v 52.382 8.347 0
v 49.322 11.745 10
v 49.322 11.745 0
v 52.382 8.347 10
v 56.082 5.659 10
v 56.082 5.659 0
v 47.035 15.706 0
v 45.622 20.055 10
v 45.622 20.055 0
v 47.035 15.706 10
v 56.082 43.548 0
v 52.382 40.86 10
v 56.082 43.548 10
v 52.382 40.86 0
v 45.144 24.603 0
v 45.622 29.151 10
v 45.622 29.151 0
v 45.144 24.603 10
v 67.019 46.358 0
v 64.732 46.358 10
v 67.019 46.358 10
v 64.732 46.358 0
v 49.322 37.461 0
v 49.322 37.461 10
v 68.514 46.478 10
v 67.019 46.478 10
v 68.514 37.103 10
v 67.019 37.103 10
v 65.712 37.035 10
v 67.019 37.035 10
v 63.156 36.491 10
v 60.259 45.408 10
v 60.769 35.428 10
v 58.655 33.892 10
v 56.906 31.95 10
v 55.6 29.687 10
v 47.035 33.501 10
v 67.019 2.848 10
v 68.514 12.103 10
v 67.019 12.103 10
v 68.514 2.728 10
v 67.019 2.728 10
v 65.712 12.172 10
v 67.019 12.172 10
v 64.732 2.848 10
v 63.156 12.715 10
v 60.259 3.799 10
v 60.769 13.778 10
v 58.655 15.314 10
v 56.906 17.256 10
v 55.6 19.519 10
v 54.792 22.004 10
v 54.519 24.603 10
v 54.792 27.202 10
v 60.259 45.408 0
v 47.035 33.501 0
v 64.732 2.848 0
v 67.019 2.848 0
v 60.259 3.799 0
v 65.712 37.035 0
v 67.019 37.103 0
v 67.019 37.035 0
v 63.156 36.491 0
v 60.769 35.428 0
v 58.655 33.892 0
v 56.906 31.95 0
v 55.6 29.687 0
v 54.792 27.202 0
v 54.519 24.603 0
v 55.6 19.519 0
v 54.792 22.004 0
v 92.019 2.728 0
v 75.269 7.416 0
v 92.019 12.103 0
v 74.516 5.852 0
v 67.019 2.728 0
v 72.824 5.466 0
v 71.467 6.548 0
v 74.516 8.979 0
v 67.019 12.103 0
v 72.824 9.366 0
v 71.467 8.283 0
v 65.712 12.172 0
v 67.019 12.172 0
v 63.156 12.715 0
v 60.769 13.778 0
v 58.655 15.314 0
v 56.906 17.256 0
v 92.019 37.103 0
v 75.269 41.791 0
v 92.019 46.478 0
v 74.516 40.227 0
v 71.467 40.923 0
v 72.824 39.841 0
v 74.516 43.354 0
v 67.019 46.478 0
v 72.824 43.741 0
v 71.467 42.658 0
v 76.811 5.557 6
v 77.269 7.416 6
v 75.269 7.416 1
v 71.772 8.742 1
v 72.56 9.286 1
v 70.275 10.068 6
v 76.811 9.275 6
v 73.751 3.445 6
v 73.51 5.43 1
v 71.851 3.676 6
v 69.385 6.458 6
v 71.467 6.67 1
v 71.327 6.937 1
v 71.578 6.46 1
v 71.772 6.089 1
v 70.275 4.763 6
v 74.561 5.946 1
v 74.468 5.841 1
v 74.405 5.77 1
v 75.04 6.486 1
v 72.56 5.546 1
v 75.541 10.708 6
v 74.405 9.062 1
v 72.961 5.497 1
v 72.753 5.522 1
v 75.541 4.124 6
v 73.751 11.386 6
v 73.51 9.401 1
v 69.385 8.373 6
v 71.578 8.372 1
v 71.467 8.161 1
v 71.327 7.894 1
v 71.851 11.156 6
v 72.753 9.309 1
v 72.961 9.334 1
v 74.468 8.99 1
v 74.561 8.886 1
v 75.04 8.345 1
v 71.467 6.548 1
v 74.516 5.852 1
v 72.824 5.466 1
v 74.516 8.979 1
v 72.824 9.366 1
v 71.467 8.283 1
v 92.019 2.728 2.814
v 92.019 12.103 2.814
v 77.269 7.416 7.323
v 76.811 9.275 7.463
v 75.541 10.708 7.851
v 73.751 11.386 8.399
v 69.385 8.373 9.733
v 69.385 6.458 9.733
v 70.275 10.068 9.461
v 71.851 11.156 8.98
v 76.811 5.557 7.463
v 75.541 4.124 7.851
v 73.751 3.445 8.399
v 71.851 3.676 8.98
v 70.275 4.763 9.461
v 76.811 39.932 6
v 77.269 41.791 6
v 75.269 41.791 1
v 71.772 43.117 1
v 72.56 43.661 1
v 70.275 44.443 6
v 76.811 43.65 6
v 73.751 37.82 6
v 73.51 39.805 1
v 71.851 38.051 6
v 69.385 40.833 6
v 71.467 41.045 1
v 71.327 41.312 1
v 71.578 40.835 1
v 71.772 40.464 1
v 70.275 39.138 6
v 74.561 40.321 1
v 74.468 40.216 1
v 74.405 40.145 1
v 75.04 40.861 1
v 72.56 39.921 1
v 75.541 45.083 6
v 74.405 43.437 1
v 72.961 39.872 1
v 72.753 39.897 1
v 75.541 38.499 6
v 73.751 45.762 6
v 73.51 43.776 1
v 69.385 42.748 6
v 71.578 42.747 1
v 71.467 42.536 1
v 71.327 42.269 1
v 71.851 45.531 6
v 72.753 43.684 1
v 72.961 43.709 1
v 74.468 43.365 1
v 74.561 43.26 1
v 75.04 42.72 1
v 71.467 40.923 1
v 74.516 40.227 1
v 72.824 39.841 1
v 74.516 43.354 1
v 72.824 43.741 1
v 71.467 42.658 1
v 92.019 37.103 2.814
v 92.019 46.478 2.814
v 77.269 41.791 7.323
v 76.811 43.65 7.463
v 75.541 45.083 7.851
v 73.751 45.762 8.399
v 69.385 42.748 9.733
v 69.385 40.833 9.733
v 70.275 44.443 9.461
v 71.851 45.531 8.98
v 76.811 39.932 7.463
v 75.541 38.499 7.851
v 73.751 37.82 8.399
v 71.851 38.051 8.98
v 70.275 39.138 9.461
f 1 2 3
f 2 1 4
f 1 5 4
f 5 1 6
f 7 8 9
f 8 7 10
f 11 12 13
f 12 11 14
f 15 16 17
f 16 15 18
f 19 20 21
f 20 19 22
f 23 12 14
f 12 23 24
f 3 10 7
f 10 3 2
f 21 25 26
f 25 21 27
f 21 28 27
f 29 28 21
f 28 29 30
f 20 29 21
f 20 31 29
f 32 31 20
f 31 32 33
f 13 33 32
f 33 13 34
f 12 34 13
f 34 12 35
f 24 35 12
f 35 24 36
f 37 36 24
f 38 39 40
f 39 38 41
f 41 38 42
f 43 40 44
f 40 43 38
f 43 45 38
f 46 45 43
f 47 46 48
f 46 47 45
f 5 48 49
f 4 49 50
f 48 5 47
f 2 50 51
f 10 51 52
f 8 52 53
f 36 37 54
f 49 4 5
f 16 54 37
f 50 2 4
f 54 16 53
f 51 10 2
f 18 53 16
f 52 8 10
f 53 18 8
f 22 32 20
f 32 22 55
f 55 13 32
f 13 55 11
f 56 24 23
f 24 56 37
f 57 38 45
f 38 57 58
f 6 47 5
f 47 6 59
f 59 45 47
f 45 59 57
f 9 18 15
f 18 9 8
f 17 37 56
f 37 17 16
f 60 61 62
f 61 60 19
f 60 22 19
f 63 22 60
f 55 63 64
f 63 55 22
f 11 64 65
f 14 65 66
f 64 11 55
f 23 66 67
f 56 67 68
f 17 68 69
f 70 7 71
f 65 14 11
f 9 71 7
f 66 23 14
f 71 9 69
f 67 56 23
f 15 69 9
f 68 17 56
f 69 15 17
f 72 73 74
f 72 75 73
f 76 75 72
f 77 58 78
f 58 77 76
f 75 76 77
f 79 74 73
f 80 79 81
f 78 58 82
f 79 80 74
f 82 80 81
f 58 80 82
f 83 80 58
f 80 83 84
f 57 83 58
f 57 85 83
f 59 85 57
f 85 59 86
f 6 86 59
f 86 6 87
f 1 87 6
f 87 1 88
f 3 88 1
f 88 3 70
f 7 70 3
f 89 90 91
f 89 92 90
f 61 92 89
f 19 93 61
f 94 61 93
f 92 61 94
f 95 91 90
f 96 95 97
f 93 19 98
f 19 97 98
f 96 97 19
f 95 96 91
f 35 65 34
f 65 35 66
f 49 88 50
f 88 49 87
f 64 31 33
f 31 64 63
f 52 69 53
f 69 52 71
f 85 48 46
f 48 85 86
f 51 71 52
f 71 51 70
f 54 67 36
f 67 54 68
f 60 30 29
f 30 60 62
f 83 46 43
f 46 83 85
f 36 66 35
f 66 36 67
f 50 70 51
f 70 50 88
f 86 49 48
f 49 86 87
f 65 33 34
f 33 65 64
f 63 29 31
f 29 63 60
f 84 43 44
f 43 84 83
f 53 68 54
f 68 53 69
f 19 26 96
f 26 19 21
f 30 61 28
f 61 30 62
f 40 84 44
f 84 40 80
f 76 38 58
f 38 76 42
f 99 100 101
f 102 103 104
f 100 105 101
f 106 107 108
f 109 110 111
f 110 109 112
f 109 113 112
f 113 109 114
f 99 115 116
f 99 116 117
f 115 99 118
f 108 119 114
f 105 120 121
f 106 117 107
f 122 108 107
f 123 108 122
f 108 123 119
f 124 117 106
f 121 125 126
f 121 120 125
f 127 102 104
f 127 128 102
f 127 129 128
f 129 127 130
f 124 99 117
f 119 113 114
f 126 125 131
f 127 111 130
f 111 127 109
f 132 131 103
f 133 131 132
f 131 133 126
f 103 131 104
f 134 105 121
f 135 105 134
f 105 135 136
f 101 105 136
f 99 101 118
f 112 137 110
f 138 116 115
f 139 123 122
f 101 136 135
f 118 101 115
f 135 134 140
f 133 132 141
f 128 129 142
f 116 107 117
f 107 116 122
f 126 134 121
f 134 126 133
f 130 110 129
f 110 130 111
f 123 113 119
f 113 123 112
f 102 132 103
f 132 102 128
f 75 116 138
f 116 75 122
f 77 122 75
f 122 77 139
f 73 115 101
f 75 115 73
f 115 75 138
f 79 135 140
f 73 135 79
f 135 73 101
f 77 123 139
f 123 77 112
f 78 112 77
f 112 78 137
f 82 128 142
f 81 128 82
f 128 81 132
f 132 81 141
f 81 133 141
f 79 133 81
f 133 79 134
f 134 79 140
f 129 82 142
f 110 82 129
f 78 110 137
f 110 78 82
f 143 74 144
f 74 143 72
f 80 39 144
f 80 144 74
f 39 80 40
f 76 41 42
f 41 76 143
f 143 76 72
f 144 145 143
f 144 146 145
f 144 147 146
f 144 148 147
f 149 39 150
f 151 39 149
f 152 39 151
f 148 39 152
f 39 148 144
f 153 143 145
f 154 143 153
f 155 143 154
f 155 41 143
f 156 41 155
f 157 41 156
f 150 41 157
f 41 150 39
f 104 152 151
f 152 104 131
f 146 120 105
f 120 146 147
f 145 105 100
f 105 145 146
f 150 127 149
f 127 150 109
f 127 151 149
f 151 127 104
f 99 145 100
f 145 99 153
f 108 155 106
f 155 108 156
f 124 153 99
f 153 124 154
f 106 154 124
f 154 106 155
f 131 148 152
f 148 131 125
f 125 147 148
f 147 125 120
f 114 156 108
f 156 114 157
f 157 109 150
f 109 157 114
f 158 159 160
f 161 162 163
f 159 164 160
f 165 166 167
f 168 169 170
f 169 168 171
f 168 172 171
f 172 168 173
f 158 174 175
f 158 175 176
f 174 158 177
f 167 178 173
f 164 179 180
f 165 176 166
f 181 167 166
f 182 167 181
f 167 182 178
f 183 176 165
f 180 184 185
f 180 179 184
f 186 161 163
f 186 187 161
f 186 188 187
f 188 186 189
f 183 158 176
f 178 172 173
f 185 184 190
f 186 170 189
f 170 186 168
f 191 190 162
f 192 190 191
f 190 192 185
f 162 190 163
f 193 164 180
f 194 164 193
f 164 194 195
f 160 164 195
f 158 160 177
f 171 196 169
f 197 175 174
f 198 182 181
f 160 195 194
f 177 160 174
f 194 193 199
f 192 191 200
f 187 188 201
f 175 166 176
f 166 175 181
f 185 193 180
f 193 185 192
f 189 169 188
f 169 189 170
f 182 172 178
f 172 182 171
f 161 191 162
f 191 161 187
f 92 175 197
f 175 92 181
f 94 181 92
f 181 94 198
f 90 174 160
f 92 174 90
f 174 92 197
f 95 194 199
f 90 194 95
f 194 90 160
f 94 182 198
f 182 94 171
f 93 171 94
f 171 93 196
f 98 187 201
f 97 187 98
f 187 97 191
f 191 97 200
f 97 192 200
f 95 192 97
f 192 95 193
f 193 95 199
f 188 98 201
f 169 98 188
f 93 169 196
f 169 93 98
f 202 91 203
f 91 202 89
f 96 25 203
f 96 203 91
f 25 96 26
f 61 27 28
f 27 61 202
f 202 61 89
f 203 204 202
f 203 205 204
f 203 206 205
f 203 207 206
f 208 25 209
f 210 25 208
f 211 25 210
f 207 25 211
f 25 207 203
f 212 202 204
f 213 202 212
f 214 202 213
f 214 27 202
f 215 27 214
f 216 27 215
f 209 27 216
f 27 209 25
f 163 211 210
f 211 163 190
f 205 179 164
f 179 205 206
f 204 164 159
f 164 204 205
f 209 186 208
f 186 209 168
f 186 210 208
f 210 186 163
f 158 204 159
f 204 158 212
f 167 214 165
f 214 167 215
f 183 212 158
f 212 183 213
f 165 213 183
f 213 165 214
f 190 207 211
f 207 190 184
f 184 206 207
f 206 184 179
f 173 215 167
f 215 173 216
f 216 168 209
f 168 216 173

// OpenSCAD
//the base
c1 = 78.846;
c2 = 51.154;
v  = 61.508;
alfa = 37.958;
beta = 50.2512;

//slope
angle = 17; // slope angle, set to 21.8014; if you want sharp edge
d  = 10; //depth and width of the slope

//rod radius
r  = 12.5;

//screw
screw1 = 8; //width of the screw head
screw2 = 4; //width of the screw body
screwhead = 5; //height of the screw head
screwlength = 10; //length of the screw body

module triangleA() {
    color([1,0,0])
    difference() {
        cube( [ c1, v, d ] );
        rotate( [ 0, 0, alfa] ) translate([0, 0, -5]) cube( [ 120, 120, 30 ] );
    }
}
module triangelB() {
    color([1,0,0])
    difference() {
        cube( [ c2, v, d ] );
        rotate( [ 0, 0, beta ] ) translate( [ 0, 0, -5]) cube ([ 120, 120, 30 ] );
    }
}
module triangle() {
    translate( [ 0, 0, -d] ) triangleA();
    translate( [c1+c2, 0, 0] ) rotate( [0, 180, 0] ) triangelB();
}

module rod() {
    color([0,1,0])
    translate( [ 0, r, 0 ] ) cylinder( r = r, h = 100 );
}

module screw() {
    color( [0, 0, 1] ) {
        cylinder( d1 = screw1, d2 = screw2, h = screwhead);
        translate([0, 0, screwhead]) cylinder( d=screw2, h = screwlength);
    }
}

module slope() {
    difference() {
        cube ( [ 2*r, 0.75 * r, d] );
        rotate( [ 0, angle, 0] ) translate( [ -r, -r, d] ) cube ( [ 3*r, 2*r, d] );
        translate( [0.5*r, 0.75*0.5*r, 1.2*screwhead]) rotate([180, 0, 0] ) screw();
        translate( [0.5*r, 0.75*0.5*r, 1.2* screwhead] ) cylinder ( d=screw1, h=10);
    }
}

module horizontal_rod_holder() {
    difference() {
        cylinder( r = 1.75*r, h = d );
        translate( [ 0, 0, -1.5*d ] ) cylinder( r = r, h = 3*d );
        translate( [ 0, -3*r, -1.5*d ] ) cube( [ 100, 100, 3*d ] );
    }
    translate( [0, -1.75*r, 0]) slope();
    translate( [0, r, 0]) slope();
}

//triangle();
//translate( [ 0.9*c1, v/5, 0 ] ) rod();

/*
translate( [ 0.85*c1, v/2.5, 0] )
translate( [0.5*r, 0.75*0.5*r, 1.2*screwhead])
translate( [0.5*r, 0.75*0.5*r, 1.2*screwhead]) rotate([180, 0, 0] ) screw();
*/
translate( [ 0.85*c1, v/2.5, 0] ) horizontal_rod_holder();
